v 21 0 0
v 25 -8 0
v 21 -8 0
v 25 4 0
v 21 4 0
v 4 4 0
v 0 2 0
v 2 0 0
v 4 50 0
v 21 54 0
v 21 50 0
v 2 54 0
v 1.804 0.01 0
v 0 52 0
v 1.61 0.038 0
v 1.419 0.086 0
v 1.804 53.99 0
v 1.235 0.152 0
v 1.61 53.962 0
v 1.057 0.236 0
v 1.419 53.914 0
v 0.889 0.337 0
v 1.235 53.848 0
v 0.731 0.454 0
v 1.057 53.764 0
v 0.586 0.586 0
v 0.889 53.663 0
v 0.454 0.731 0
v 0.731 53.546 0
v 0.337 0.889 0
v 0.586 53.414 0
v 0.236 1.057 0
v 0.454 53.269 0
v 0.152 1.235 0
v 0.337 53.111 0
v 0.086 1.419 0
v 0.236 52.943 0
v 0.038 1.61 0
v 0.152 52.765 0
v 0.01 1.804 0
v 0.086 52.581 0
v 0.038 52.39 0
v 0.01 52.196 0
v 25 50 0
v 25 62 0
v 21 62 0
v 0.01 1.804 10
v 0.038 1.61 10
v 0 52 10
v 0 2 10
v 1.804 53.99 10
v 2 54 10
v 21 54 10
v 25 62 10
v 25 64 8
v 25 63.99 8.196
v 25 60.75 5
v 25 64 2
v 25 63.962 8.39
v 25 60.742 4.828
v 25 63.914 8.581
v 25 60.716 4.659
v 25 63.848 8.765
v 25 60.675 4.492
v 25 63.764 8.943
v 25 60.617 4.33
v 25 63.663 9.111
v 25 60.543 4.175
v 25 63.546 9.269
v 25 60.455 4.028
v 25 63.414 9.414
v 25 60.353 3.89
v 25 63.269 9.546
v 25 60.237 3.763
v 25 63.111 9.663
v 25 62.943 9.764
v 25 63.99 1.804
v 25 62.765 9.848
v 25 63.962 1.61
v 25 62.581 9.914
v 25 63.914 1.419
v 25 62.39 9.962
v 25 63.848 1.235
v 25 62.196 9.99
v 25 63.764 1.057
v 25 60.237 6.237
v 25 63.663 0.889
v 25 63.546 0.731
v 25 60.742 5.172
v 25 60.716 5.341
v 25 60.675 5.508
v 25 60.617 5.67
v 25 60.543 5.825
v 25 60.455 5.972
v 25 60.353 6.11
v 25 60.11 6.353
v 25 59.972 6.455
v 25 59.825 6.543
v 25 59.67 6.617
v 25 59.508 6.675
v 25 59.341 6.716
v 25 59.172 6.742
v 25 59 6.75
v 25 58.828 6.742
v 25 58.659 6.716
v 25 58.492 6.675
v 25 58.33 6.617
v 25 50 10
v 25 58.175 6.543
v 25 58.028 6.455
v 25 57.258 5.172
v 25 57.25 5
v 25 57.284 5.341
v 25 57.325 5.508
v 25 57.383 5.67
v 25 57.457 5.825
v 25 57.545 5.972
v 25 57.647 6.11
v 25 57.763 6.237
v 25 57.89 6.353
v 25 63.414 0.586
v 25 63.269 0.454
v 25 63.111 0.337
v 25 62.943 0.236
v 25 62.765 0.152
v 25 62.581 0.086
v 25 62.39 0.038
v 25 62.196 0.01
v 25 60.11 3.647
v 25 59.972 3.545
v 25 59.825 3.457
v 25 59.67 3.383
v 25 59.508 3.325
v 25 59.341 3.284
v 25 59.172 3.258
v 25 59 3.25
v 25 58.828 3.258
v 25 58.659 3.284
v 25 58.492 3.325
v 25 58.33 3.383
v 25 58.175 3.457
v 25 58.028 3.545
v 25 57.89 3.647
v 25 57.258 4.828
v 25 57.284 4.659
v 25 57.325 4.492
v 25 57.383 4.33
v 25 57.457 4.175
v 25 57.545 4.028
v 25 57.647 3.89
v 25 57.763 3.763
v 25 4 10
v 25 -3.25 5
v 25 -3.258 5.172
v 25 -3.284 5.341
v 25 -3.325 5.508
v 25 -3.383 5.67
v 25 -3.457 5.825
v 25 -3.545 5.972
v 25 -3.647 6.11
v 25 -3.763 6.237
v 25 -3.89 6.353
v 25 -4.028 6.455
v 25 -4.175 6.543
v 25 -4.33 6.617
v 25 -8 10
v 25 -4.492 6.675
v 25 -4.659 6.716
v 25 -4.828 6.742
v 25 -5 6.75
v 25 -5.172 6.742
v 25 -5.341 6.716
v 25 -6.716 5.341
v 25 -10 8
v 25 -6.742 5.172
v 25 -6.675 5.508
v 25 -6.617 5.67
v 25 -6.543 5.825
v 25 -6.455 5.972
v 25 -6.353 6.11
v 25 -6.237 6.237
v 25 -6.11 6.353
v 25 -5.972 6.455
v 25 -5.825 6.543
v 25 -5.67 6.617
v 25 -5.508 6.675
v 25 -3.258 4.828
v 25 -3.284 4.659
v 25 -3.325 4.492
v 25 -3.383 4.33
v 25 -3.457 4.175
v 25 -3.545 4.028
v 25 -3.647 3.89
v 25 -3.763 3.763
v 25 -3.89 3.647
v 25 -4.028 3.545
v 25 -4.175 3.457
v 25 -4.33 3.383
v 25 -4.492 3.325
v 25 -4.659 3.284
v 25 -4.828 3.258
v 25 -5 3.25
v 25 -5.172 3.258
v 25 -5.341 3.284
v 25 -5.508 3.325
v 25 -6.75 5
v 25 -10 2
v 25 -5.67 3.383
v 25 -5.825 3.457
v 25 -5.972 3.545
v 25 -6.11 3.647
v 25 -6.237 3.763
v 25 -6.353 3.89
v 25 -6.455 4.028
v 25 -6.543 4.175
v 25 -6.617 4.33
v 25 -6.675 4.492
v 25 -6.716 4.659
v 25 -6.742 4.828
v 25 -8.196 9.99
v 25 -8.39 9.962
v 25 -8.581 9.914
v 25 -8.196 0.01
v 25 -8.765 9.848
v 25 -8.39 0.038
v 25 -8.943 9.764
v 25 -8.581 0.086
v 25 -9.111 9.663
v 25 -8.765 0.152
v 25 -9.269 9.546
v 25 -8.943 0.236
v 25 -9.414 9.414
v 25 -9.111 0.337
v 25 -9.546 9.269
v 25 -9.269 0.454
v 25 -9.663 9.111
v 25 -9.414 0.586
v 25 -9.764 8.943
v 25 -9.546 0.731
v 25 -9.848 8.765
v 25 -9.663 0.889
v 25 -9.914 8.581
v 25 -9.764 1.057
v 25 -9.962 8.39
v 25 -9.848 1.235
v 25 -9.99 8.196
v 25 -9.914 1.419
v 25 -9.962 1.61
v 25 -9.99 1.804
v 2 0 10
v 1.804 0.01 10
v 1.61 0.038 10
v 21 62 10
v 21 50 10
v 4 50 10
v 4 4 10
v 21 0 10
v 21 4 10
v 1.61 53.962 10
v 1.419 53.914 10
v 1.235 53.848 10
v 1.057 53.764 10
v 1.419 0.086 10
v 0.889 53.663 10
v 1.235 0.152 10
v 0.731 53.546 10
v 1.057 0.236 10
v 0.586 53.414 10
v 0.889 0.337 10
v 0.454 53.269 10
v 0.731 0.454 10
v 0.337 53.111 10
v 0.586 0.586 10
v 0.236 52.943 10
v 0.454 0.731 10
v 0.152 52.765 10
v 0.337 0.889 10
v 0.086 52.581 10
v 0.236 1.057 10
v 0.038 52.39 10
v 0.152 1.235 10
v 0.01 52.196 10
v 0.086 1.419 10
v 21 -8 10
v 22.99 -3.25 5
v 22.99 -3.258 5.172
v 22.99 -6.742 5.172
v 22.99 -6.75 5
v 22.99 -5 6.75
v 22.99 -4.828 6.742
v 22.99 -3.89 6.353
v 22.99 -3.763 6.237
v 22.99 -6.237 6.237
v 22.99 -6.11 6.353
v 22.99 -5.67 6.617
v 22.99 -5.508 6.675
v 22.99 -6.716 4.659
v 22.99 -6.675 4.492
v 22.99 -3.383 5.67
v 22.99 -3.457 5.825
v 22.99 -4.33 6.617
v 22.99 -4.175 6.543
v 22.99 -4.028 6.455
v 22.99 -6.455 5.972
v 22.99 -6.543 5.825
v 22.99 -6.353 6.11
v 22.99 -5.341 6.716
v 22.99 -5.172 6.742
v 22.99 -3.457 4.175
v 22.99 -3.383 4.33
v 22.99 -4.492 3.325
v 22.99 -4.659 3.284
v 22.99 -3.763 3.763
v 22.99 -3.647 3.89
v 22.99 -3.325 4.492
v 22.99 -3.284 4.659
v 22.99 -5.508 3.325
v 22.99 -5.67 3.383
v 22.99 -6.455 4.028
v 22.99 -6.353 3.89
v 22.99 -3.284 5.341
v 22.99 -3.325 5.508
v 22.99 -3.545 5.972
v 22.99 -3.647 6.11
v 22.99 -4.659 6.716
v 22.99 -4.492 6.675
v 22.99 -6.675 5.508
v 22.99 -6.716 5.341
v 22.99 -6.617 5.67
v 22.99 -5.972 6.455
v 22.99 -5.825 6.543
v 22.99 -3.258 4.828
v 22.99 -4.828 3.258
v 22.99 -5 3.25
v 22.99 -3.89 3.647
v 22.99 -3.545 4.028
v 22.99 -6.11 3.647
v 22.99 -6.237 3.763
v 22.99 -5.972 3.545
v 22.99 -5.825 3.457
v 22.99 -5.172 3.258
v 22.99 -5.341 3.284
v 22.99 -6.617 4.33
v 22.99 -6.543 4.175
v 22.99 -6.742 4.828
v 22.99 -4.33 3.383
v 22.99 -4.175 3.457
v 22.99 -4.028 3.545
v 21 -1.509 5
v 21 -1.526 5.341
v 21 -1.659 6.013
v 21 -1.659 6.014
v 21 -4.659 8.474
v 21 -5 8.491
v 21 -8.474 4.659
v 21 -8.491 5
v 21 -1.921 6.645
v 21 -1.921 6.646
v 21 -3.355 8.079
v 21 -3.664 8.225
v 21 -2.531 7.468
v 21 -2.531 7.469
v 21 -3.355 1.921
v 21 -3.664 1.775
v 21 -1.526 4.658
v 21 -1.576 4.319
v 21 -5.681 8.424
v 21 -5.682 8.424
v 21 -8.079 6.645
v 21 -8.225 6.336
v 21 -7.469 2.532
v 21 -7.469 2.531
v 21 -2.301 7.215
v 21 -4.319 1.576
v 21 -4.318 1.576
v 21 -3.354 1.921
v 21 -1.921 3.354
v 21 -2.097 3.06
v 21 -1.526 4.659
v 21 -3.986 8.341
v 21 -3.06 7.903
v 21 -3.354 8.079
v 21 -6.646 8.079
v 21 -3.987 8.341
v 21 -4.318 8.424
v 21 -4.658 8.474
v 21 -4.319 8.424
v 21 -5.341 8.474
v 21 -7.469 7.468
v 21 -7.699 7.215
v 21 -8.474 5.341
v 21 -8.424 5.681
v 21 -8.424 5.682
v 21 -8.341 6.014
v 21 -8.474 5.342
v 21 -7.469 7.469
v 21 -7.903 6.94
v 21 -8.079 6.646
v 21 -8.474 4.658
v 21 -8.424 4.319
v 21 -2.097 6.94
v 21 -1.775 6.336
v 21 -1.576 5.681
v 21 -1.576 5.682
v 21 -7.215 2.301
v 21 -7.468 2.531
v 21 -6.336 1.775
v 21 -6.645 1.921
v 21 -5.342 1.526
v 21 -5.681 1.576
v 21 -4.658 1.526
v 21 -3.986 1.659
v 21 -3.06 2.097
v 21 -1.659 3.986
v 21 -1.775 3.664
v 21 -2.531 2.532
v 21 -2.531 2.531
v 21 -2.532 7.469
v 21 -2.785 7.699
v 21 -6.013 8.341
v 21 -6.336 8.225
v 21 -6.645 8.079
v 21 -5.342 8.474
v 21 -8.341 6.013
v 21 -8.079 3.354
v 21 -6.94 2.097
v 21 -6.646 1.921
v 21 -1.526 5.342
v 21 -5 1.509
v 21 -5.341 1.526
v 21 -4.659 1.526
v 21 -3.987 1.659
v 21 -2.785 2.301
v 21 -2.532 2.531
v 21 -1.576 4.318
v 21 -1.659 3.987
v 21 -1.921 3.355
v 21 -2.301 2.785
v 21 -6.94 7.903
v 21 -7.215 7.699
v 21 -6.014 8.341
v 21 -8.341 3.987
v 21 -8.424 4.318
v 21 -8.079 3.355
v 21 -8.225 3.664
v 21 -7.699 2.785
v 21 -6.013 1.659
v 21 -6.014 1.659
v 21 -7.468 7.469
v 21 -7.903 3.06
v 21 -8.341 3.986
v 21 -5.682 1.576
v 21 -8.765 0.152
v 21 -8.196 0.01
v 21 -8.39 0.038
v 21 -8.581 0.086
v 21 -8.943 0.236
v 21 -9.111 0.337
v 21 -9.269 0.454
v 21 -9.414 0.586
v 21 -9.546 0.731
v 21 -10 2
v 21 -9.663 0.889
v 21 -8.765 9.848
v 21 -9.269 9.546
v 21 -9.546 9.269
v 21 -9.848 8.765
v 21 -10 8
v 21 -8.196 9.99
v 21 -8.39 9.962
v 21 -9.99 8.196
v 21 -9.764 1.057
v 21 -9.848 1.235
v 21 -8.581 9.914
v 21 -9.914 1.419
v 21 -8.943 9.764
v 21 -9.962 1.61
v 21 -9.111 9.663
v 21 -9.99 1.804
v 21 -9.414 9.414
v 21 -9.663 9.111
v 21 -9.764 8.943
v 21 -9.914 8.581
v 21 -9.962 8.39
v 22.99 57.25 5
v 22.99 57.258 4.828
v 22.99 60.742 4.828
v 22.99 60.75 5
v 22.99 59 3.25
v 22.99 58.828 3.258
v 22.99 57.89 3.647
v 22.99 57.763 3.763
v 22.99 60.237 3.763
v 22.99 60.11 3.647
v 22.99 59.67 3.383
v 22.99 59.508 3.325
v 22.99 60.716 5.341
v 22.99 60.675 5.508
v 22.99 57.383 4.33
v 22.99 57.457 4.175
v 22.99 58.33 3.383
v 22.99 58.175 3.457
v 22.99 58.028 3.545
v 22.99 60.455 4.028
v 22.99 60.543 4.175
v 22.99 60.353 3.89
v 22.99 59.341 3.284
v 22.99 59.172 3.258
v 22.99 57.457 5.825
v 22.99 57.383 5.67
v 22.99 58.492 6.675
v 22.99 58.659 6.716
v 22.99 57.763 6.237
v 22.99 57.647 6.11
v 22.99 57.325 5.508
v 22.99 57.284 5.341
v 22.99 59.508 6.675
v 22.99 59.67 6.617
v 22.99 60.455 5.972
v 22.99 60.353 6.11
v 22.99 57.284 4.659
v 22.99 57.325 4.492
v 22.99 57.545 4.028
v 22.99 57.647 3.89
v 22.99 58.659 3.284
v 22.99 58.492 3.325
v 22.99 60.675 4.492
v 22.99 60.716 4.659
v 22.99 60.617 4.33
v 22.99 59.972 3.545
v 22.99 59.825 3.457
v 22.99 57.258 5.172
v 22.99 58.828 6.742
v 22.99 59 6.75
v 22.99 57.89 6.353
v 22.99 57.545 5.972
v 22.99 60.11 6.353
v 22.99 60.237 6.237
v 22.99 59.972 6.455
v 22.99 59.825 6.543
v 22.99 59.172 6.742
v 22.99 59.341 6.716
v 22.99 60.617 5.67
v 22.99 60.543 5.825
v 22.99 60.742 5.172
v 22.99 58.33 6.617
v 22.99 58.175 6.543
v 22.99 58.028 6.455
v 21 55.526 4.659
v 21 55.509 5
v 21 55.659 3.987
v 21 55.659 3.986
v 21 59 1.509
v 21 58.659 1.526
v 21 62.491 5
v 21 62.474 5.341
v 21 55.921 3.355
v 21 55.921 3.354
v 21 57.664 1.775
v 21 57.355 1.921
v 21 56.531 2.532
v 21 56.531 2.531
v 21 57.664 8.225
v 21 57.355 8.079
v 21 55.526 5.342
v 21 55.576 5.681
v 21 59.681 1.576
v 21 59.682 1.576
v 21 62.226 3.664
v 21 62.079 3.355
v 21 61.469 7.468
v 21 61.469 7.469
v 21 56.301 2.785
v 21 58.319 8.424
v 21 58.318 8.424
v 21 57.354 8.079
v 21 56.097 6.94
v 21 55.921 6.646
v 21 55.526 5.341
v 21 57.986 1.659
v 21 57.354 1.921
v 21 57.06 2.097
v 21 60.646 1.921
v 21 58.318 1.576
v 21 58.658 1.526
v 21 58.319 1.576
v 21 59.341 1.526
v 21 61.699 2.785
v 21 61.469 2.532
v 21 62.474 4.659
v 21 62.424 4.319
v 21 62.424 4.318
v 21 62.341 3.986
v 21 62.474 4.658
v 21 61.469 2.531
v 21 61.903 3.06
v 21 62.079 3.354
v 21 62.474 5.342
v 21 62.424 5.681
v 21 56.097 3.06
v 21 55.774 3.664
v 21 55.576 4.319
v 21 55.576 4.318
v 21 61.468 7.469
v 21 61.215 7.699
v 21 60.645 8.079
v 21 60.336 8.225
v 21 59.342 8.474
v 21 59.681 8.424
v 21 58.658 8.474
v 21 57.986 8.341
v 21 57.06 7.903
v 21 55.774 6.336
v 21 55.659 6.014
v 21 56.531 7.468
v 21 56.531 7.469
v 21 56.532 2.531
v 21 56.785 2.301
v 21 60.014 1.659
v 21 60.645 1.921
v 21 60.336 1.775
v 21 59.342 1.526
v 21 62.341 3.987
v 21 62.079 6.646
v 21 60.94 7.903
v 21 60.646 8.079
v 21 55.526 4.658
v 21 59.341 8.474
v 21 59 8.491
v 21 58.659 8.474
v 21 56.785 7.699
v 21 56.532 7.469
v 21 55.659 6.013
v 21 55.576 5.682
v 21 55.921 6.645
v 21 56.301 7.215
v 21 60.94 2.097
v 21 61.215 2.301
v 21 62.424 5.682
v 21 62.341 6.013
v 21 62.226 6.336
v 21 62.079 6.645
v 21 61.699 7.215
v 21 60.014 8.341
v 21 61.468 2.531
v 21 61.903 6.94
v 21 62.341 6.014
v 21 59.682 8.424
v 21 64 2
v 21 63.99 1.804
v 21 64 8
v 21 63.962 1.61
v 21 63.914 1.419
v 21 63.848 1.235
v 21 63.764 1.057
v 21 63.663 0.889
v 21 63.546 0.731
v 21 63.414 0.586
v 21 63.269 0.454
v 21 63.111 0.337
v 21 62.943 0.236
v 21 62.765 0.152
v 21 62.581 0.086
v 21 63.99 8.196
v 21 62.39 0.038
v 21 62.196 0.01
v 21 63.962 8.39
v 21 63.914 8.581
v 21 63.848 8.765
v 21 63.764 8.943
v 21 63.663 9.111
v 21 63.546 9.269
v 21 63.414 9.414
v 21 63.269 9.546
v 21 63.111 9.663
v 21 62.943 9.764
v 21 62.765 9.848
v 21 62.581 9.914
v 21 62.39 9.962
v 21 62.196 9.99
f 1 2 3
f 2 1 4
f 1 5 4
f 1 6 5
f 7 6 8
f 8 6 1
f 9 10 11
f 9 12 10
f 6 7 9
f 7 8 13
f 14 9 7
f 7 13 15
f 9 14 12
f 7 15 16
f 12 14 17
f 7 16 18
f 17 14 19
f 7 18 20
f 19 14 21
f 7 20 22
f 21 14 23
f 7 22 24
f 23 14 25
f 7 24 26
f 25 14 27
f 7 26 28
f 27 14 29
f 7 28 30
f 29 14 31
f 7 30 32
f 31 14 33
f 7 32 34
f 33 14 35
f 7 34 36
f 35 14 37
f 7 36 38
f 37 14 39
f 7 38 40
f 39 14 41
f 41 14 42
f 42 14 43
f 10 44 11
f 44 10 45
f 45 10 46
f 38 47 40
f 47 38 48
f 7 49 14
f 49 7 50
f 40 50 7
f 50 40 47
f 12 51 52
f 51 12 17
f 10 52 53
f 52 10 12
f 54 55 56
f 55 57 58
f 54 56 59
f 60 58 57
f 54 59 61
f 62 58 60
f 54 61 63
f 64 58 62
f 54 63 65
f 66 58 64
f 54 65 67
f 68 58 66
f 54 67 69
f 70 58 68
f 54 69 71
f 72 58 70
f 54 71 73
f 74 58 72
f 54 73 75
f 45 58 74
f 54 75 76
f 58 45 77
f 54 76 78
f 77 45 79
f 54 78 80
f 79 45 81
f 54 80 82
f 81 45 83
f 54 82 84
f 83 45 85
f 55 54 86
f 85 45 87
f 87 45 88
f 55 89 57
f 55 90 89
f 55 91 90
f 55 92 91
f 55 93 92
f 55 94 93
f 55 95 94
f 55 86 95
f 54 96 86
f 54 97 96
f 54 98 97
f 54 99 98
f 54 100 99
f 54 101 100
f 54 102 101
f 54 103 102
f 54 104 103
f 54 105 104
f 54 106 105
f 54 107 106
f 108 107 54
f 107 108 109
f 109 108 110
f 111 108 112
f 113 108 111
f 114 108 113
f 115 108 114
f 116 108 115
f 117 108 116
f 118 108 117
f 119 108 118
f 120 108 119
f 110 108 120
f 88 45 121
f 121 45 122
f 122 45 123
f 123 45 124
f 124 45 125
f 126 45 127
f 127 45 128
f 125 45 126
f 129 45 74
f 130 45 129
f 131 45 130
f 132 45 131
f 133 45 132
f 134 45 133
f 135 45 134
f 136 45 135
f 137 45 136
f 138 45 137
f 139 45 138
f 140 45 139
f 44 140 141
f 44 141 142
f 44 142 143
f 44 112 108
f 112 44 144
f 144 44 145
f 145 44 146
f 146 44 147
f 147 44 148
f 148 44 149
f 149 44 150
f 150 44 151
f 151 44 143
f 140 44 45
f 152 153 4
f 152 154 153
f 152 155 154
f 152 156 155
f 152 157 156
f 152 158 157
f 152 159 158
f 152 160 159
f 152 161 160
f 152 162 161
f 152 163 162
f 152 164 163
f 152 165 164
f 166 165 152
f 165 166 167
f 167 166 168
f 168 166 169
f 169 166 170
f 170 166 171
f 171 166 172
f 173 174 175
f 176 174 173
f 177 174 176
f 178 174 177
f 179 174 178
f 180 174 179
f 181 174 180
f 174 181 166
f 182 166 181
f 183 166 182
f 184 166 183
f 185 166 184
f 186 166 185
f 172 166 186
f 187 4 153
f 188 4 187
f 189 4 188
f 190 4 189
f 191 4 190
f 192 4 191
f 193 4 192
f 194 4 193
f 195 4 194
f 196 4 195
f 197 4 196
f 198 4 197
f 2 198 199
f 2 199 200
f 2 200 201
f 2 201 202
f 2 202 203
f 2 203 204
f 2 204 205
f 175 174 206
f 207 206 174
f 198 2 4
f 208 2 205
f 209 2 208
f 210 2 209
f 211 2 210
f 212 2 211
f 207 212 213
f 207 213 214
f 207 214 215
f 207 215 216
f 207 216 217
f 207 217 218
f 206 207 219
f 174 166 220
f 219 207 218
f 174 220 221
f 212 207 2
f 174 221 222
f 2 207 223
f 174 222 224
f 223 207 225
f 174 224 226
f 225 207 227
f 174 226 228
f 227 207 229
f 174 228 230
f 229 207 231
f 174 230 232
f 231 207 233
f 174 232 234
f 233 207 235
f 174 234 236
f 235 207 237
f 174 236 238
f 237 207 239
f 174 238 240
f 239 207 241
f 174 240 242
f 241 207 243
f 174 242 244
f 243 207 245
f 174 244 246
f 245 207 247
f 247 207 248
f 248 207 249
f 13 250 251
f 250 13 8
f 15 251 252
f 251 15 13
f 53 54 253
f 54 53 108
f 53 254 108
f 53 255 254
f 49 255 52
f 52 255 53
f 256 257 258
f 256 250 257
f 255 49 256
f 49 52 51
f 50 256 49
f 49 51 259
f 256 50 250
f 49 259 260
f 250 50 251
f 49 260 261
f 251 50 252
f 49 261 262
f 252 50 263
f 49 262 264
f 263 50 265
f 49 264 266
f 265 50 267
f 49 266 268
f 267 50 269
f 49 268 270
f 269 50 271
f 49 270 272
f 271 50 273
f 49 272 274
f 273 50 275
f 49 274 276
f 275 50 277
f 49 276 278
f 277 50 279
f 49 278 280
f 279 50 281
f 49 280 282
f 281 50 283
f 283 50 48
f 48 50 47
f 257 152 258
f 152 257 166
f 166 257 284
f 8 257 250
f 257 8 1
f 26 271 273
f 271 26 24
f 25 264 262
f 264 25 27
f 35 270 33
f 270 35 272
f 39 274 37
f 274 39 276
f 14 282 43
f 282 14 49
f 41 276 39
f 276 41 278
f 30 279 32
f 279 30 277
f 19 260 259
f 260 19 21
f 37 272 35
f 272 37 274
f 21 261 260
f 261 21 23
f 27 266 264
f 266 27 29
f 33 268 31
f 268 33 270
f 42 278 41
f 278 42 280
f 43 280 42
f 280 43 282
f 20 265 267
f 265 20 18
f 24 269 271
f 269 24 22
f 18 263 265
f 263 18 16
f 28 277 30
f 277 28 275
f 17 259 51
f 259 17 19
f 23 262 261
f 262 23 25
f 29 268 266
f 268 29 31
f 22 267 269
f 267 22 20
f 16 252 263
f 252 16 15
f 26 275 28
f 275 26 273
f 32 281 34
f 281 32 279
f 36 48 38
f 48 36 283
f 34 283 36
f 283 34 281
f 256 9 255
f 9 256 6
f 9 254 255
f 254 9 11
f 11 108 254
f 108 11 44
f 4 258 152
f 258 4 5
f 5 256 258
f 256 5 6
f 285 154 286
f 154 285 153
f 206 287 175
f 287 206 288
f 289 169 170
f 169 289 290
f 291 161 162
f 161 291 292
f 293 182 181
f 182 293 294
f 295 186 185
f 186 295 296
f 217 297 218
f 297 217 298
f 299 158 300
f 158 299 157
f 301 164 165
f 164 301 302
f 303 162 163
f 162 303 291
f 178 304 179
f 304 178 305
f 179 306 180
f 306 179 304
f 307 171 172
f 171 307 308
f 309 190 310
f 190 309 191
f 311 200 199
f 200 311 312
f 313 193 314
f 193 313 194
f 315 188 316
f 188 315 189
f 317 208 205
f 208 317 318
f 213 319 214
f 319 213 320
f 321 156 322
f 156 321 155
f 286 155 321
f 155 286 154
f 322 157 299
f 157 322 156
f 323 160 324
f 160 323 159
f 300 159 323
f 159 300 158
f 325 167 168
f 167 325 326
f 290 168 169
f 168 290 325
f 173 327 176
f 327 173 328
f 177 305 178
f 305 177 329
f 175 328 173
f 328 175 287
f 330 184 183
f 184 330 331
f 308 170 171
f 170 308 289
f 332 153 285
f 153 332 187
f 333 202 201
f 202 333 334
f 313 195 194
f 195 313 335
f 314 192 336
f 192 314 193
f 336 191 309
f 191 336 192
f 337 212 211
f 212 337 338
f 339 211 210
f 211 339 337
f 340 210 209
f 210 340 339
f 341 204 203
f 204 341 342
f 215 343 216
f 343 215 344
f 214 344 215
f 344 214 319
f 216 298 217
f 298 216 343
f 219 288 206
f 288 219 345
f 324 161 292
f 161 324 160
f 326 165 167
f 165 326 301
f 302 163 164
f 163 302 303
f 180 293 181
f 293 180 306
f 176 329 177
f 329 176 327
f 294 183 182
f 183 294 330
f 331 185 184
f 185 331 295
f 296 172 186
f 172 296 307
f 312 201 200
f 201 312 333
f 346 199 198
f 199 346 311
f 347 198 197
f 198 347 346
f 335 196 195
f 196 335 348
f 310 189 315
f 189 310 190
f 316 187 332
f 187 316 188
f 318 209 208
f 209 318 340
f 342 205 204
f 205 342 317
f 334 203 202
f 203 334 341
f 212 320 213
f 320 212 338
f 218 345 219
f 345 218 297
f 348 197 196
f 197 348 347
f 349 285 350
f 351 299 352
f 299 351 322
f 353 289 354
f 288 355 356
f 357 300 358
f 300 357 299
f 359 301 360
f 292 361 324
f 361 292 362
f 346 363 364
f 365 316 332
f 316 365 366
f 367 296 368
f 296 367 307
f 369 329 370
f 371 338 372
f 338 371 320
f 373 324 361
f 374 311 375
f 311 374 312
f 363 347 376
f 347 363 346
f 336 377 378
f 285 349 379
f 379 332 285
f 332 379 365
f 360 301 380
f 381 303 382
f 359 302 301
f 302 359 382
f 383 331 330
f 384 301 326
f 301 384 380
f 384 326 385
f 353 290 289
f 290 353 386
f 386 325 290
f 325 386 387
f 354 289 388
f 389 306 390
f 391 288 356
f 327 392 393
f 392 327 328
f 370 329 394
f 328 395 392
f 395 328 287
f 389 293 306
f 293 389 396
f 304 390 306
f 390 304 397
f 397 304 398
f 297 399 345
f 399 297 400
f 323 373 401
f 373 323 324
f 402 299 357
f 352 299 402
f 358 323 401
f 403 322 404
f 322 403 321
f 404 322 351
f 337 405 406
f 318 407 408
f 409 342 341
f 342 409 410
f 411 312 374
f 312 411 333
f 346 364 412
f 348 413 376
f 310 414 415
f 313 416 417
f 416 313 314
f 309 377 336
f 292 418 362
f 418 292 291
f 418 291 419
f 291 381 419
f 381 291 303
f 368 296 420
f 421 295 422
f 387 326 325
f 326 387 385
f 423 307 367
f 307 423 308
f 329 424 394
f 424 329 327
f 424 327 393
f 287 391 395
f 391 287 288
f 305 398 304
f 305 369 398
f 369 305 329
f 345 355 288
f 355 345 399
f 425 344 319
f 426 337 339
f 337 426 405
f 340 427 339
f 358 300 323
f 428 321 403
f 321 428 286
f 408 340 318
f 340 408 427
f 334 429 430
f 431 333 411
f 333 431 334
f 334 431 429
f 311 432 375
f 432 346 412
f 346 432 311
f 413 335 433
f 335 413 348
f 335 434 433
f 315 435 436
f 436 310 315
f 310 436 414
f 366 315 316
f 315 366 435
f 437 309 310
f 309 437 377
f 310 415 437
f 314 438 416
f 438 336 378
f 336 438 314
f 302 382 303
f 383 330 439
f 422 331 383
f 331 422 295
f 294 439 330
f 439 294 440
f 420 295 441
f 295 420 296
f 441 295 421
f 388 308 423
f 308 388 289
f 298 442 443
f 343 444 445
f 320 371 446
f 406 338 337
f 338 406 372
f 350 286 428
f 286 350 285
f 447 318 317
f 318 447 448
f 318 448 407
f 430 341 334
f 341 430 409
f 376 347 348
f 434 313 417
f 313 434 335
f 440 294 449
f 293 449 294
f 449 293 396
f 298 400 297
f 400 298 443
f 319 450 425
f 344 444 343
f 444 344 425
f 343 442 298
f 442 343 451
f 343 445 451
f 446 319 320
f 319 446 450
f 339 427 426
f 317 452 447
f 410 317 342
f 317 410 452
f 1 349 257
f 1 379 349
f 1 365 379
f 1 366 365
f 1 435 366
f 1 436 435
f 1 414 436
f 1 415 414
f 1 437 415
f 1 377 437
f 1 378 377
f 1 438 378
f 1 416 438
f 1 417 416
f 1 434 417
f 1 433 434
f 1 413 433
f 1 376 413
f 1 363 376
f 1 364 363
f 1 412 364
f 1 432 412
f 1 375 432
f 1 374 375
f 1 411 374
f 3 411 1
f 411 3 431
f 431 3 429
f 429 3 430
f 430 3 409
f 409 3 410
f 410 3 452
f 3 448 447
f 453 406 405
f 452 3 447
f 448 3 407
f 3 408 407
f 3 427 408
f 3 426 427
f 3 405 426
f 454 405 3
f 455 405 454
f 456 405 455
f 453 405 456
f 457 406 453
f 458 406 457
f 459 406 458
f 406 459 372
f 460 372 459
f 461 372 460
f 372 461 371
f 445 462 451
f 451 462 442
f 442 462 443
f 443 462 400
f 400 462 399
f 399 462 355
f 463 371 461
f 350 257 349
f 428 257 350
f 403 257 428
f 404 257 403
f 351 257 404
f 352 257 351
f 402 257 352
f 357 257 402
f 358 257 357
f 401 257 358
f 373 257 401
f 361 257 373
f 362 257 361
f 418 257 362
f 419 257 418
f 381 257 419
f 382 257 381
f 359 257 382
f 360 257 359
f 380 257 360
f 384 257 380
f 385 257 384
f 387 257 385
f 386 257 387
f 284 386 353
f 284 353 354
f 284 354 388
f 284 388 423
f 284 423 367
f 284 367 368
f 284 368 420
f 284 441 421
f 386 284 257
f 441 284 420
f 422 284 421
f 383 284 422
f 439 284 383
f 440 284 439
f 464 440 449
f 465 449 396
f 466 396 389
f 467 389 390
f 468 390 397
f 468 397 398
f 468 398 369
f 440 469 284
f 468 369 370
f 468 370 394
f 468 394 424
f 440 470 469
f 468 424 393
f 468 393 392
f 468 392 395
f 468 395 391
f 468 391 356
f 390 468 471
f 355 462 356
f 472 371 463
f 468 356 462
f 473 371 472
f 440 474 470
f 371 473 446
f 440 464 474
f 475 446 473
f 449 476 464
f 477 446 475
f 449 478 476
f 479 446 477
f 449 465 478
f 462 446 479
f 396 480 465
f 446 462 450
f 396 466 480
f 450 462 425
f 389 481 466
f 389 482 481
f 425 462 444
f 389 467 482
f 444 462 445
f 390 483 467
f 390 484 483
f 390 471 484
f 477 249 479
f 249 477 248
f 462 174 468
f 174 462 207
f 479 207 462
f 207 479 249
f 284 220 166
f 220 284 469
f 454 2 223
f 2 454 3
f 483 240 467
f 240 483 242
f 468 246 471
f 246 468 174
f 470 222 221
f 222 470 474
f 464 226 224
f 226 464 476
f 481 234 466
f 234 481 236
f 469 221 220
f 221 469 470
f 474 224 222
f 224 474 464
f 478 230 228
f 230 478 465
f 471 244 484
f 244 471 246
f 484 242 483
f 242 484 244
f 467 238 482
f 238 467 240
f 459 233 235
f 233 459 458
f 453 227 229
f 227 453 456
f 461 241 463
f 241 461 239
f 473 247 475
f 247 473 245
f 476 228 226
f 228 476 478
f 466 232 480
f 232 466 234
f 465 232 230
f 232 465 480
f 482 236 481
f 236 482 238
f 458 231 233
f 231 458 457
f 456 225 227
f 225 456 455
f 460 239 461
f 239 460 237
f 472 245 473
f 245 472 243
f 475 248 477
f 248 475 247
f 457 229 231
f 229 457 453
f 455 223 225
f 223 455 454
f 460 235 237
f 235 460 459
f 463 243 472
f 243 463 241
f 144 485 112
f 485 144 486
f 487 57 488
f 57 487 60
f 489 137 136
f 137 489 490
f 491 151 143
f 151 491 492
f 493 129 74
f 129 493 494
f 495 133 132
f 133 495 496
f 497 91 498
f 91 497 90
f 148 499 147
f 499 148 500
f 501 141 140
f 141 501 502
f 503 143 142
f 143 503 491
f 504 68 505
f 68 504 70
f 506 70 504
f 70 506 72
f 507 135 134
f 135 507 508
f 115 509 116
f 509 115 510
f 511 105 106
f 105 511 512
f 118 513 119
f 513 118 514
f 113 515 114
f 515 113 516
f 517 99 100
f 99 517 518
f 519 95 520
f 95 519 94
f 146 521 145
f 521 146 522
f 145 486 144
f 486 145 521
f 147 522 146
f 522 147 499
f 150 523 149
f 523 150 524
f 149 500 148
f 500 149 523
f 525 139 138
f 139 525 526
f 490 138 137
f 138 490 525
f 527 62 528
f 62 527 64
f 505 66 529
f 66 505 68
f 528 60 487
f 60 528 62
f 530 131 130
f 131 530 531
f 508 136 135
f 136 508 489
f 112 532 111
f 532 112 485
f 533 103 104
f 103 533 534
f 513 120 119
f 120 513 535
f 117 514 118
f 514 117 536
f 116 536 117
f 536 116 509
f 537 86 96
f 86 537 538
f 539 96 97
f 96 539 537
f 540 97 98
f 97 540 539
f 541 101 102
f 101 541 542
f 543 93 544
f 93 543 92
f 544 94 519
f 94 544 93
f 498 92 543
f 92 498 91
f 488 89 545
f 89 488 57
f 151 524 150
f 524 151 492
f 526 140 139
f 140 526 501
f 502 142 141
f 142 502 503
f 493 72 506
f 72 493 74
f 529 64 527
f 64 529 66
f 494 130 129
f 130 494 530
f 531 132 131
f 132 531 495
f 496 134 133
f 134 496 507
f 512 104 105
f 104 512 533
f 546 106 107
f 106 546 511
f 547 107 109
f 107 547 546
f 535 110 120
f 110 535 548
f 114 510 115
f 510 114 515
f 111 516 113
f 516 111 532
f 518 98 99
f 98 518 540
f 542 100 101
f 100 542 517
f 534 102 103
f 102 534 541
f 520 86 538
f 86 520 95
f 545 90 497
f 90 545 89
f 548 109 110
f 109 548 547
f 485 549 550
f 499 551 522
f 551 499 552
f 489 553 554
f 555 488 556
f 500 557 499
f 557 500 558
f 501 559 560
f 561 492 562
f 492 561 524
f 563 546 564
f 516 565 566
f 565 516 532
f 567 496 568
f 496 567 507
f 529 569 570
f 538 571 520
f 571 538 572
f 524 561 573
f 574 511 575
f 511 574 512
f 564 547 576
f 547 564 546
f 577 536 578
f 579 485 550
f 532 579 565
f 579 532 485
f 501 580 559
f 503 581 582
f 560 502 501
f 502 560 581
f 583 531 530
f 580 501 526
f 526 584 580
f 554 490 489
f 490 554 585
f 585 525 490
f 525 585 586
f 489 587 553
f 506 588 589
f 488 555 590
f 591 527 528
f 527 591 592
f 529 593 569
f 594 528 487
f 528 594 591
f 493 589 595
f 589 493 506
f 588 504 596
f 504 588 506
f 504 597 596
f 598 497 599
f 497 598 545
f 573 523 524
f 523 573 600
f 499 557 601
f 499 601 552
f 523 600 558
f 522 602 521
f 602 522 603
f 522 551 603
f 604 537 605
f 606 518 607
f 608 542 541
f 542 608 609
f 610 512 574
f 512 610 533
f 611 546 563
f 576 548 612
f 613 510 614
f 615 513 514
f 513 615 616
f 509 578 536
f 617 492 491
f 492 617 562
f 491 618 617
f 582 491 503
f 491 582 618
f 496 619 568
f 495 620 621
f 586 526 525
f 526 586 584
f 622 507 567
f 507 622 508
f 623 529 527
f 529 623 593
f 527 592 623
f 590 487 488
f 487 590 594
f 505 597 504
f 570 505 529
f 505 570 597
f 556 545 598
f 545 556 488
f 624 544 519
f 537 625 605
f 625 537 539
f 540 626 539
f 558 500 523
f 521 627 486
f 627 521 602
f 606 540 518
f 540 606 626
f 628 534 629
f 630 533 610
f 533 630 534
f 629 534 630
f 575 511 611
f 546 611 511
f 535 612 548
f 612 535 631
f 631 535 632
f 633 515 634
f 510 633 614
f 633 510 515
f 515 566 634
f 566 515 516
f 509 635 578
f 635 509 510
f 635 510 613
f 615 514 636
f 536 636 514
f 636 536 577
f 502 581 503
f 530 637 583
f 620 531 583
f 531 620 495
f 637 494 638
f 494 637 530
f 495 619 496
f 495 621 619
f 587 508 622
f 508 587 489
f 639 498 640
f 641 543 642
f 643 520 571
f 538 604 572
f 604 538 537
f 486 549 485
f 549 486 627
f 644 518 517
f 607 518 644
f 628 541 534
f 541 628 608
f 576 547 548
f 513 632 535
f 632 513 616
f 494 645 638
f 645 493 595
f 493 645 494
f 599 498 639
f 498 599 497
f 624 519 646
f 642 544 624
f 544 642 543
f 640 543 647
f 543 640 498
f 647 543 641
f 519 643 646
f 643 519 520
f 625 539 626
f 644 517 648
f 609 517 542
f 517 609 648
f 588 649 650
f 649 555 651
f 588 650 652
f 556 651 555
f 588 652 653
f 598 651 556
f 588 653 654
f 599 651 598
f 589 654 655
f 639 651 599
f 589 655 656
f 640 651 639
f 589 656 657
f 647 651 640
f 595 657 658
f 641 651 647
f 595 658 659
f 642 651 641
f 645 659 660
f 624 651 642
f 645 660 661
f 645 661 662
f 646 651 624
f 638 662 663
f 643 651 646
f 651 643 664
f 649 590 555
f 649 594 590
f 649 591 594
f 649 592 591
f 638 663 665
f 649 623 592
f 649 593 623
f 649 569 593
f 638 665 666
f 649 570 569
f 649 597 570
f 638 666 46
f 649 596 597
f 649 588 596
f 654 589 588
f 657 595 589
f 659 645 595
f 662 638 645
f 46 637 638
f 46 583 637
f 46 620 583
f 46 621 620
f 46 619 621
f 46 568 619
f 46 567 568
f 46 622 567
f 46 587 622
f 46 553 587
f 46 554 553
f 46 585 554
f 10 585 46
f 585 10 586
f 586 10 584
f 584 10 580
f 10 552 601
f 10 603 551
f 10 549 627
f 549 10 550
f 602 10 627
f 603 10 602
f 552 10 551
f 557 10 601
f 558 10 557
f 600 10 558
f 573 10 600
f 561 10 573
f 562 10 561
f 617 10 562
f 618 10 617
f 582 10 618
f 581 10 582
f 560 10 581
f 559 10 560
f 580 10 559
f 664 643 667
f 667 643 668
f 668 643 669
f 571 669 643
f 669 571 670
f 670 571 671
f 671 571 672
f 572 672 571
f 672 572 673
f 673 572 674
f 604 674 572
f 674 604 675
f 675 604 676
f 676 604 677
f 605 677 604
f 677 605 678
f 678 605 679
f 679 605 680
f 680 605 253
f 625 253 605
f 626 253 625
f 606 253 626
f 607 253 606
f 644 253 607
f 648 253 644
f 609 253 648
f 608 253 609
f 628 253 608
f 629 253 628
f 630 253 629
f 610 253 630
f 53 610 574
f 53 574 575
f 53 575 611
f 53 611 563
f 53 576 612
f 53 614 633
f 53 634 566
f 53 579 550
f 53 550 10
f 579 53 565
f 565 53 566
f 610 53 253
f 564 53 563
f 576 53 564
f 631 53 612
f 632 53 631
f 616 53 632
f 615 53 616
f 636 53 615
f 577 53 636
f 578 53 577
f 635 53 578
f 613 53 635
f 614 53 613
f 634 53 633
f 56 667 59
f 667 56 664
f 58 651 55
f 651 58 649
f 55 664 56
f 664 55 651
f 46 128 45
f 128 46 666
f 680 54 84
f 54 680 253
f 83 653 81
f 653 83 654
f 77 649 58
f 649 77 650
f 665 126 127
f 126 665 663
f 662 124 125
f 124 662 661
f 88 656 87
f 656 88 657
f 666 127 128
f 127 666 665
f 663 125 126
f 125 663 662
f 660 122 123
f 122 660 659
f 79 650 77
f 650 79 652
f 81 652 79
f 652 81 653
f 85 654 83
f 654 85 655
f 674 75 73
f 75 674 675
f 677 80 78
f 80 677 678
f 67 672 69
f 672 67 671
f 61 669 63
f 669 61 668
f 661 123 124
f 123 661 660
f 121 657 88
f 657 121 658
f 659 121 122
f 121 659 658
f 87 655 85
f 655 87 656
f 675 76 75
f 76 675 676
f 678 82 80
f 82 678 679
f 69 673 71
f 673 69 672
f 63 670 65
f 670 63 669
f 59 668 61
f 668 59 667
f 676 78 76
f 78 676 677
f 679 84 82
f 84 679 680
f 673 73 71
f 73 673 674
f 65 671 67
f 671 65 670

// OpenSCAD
// file: ../../Various/SCAD/rounded_box.scad
/**
 * Small "library" for creating boxes with rounded edges.
 *
 * Hendrik Busch, 2017-18 (https://github.com/hmbusch)
 *
 */
 
/**
 * Creates a 2D-shape of a box with the given dimensions and rounded edges. 
 * Be sure to increase $fn for nicer edges.
 *
 * @param width
 *          the desired width of the box (default is 10mm)
 * @param depth
 *          the desired depth of the box (default is 10mm)
 * @param height
 *          the desired height of the box (default is 10mm)
 * @param edge_radius
 *          the radius of all the edges on the xy-plane (default is 2mm)
 */  
module box_with_round_edges_2d(width = 10, depth = 10, edge_radius = 2) {
    ed = edge_radius * 2;
    translate([edge_radius, edge_radius, 0]) hull() {
        circle(d = ed);
        translate([width - ed, 0, 0]) circle(d = ed);
        translate([0, depth - ed, 0]) circle(d = ed);
        translate([width - ed, depth - ed, 0]) circle(d = ed);    
    }
}
 
/**
 * Call to create a box with rounded edges (edges will be round on one plane only).
 * Be sure to increase $fn for nicer edges.
 * 
 * @param width
 *          the desired width of the box (default is 10mm)
 * @param depth
 *          the desired depth of the box (default is 10mm)
 * @param height
 *          the desired height of the box (default is 10mm)
 * @param edge_radius
 *          the radius of all the edges on the xy-plane (default is 2mm)
 *
 */
module box_with_round_edges_3d(width = 10, depth = 10, height = 10, edge_radius = 2) {
	linear_extrude(height = height) {
		box_with_round_edges_2d(width, depth, edge_radius);
	}
}

/**
 * Call to create a box with rounded edges (edges will be round on one plane only).
 * Be sure to increase $fn for nicer edges. This module has inputs that resemble
 * those of cube() so that it can act as a drop-in replacement.
 * 
 * @param dimensions
 *          3-value-array with x, y and z dimensions (default is 10x10x10mm).
 * @param edge_radius
 *          the radius of all the edges on the xy-plane (default is 2mm)
 *
 */
module box_with_round_edges_3d(dimensions = [10, 10, 10], edge_radius = 2) {
	linear_extrude(height = dimensions[2]) {
		box_with_round_edges_2d(dimensions[0], dimensions[1], edge_radius);
	}
}
// main file
use <../../Various/SCAD/rounded_box.scad>

$fn = 64;
fudge = 0.01;

module_height = 21;
module_width = 46;

bracket_thickness = 4;
bracket_width = 10;

mounting_post_width = 10;

// Derived values, do not edit
pf = fudge;
nf = -fudge;

module mounting_post() {
    rotate([90, 0, 90]) {
        difference() { 
            box_with_round_edges_3d(
                dimensions = [mounting_post_width + bracket_thickness, bracket_width, bracket_thickness],
                edges = [true, false, true, false]);
            translate([mounting_post_width/2, bracket_width/2, 0]) {
                translate([0, 0, bracket_thickness/2 - bracket_thickness])
                    cylinder(d = 3.5, h = 2 * bracket_thickness);
                translate([0, 0, nf]) cylinder(d1 = 7, d2 = 3.5, h = 2);
            }
        }
    }
}

module bracket()  {
    difference() {
        box_with_round_edges_3d(
            dimensions = [module_height + bracket_thickness, module_width + 2 * bracket_thickness, bracket_width],
            edges = [true, false, true, false]);
        translate([bracket_thickness, bracket_thickness, bracket_width/2-bracket_width]) cube([module_height + pf, module_width, 2 * bracket_width]);
    }
}

module final_part() {
    bracket();
    translate([module_height, -mounting_post_width, 0])
        mounting_post();
    translate([module_height, module_width + 2 * bracket_thickness + mounting_post_width, bracket_width])
        rotate([180, 0, 0]) 
            mounting_post();
}

final_part();
    
